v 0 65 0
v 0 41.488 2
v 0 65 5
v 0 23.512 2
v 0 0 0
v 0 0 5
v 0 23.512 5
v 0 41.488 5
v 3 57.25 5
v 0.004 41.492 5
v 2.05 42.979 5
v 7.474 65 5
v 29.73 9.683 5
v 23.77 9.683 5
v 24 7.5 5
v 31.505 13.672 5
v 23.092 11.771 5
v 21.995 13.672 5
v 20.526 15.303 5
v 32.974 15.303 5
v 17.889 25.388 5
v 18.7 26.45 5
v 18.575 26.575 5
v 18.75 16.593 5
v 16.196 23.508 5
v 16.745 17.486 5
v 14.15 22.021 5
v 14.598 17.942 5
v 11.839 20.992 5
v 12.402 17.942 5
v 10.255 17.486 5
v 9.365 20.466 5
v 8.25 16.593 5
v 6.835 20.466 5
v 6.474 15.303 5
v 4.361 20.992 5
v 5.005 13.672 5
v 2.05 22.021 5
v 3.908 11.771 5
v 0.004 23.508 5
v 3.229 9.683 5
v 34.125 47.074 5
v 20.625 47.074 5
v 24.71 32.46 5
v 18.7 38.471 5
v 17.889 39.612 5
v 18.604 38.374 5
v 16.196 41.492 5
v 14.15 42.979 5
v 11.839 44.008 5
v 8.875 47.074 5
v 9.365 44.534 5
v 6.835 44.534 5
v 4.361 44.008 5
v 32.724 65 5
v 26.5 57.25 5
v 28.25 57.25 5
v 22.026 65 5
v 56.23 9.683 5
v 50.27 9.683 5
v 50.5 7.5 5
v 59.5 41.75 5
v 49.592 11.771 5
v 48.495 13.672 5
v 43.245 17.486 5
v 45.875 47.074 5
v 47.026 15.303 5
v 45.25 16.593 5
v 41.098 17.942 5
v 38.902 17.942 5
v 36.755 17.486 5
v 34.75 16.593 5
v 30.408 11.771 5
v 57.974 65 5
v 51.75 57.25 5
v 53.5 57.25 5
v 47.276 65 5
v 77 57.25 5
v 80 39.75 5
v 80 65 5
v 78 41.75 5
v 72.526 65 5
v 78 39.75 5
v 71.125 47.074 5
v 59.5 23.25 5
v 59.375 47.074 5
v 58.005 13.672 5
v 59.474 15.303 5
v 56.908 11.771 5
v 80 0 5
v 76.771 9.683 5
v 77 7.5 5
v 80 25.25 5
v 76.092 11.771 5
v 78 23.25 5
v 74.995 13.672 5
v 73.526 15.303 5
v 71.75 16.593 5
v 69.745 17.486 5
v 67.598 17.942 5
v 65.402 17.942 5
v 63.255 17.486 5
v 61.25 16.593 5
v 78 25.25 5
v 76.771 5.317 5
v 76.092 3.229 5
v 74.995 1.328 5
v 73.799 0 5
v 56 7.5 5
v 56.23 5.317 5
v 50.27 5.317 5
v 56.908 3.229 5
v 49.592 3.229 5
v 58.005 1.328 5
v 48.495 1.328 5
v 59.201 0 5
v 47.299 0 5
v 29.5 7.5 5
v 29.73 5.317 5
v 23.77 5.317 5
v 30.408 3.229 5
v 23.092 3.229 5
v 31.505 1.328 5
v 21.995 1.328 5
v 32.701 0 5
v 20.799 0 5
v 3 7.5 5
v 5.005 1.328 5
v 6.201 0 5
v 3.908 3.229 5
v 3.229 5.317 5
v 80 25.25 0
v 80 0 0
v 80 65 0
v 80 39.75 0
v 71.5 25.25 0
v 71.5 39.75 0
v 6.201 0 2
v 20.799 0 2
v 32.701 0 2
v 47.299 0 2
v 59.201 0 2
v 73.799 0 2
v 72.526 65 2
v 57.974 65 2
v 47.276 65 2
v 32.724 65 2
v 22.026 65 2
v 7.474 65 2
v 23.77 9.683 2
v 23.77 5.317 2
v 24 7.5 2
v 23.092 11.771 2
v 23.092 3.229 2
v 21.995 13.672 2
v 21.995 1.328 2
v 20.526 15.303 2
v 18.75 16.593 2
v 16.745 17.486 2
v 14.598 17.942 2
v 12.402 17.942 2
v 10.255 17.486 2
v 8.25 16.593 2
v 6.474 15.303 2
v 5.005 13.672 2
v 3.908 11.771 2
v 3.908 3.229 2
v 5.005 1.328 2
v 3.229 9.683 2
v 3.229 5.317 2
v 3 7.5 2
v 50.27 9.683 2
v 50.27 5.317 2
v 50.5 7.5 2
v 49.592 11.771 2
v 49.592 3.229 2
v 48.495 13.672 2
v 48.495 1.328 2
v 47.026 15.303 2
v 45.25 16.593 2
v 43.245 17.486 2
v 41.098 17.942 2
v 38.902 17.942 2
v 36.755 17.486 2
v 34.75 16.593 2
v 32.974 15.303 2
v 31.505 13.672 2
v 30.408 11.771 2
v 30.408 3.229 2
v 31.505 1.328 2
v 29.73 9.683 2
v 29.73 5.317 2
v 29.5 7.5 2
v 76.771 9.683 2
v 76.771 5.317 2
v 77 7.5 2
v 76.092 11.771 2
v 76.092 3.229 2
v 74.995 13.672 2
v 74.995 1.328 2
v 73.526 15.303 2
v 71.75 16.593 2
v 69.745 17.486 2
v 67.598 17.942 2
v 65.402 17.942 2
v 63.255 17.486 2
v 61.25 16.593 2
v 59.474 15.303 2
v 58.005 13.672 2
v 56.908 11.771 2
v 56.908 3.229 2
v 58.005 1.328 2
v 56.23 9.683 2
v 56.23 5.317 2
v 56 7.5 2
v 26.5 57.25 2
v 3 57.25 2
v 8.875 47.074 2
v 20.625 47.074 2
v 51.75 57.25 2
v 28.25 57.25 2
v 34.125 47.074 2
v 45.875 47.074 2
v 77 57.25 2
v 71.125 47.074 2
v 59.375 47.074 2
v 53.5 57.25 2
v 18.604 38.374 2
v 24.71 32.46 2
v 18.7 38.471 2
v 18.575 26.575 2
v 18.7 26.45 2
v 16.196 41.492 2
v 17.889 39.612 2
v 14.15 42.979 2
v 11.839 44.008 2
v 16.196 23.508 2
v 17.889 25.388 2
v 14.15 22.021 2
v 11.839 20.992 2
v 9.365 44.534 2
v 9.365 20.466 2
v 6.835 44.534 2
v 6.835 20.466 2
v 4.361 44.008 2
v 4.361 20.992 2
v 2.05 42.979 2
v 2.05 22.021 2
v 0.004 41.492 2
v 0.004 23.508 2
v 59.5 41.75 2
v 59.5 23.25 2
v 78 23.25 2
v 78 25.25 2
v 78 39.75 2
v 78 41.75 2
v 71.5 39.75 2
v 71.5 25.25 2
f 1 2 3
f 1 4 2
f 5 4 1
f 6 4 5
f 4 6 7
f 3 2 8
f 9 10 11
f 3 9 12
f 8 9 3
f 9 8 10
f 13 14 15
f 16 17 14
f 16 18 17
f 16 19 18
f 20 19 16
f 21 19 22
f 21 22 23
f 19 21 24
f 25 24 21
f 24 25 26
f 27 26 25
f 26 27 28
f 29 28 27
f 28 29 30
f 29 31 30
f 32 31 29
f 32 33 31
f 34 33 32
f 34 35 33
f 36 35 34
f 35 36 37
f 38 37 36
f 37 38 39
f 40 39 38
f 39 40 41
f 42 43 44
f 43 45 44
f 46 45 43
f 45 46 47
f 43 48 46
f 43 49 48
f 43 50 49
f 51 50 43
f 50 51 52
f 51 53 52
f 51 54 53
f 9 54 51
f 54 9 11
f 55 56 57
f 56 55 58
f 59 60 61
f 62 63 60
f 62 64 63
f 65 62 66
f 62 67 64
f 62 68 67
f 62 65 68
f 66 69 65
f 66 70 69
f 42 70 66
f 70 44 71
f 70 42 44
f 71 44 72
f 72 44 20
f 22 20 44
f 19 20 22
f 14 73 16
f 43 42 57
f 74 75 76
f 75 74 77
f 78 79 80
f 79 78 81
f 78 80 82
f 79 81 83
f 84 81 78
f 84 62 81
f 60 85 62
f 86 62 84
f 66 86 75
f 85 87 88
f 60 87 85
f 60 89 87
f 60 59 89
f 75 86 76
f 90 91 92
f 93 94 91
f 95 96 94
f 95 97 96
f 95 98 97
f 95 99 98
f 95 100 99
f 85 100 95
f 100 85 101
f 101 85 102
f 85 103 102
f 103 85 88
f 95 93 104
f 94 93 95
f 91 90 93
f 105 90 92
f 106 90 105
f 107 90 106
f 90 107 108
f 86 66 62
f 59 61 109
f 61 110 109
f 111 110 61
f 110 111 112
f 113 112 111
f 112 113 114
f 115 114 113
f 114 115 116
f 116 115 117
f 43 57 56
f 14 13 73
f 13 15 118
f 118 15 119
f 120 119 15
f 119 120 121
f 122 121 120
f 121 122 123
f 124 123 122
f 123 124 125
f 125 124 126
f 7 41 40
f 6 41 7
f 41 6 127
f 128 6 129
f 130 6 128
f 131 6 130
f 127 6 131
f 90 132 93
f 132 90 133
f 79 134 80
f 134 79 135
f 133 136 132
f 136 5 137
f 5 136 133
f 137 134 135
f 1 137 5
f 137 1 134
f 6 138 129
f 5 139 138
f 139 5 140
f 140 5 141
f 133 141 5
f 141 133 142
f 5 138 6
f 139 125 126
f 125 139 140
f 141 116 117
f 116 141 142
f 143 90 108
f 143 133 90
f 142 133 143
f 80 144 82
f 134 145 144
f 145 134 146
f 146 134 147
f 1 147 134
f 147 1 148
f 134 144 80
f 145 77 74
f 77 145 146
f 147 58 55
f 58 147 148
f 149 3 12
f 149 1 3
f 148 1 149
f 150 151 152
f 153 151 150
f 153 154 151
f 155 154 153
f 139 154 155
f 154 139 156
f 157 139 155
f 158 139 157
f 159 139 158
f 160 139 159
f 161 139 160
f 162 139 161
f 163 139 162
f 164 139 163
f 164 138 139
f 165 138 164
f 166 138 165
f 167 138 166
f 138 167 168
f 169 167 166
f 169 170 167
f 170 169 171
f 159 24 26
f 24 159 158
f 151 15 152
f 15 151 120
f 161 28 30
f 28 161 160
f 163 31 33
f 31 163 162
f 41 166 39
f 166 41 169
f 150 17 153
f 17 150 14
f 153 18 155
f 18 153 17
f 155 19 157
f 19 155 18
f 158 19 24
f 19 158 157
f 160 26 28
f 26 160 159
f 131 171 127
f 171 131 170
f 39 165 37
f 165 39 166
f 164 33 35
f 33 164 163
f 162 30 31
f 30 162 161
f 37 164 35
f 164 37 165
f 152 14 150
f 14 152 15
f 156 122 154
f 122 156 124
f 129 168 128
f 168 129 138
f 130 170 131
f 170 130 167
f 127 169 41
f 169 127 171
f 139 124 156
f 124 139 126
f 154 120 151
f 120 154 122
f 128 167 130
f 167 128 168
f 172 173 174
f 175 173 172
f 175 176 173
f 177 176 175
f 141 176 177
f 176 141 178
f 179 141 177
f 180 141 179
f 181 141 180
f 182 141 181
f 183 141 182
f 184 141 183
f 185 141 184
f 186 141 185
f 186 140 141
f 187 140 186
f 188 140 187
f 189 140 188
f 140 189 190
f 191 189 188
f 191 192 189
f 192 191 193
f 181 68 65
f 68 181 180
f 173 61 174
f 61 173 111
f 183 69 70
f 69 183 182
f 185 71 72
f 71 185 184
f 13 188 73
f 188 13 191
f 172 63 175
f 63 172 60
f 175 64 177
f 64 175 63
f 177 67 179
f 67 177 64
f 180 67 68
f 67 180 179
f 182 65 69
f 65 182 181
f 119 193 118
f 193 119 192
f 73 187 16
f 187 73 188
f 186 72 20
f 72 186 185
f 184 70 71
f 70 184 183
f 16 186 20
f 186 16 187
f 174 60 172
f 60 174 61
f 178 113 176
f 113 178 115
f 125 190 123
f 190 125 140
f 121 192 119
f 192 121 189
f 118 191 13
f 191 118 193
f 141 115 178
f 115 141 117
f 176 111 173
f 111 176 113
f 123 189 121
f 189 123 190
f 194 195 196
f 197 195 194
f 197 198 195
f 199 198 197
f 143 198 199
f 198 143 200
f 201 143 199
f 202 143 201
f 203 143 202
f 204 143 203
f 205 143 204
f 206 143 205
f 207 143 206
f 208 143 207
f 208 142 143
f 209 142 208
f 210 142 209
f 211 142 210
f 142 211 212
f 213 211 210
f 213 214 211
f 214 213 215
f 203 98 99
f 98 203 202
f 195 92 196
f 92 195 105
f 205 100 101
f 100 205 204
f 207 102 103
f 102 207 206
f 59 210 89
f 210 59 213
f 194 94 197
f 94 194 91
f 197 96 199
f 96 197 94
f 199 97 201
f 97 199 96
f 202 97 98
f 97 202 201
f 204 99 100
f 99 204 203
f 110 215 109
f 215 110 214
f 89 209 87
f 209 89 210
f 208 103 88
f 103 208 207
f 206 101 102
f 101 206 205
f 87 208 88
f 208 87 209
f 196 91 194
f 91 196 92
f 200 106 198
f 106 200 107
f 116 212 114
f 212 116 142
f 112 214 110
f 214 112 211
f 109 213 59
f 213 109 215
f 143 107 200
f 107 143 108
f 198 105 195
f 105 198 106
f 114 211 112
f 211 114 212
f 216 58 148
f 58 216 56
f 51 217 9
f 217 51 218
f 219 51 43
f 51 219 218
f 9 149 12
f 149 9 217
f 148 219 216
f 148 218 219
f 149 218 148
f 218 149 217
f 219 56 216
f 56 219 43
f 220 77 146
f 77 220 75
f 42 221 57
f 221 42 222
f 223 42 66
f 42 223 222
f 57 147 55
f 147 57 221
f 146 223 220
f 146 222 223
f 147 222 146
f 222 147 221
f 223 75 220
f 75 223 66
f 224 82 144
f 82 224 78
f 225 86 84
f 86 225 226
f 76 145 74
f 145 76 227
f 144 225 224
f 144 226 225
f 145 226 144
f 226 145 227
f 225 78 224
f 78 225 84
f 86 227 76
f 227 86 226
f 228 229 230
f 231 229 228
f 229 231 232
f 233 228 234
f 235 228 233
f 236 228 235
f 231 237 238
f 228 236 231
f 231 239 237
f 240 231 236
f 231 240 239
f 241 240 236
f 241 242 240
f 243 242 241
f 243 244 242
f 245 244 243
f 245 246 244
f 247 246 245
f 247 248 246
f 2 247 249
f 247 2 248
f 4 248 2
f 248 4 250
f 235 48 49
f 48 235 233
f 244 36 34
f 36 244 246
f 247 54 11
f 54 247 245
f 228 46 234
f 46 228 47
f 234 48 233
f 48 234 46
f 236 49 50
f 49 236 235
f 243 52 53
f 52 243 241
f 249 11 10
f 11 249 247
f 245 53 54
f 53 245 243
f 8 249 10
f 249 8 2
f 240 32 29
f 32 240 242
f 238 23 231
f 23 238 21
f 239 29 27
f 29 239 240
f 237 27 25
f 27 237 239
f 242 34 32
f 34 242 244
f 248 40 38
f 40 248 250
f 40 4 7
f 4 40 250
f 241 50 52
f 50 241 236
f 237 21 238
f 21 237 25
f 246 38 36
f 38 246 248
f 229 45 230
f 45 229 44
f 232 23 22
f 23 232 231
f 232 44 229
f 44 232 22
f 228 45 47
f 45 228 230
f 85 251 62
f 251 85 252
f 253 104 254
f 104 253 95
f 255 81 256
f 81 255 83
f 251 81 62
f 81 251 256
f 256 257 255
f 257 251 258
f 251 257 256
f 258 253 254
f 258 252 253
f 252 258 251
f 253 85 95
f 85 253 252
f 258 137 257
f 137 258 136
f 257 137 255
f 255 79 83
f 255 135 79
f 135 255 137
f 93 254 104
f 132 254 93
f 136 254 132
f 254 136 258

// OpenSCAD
length = 80;
width = 65;
height = 5;

floorThickness = 3;

//Based on magnet size:
magnetBaseOuterDiameter = 20;
magnetBaseInnerDiameter = 15.4;
magnetHeight = 4.2;

coinDiameter = 21;
coinOffset = 3;
coinHeight = 3;

conflictTokenDiameter = 23.5;
conflictTokenOffset = 4;
conflictTokenHeight = 3;

reagentTokenDiameter = 24.2;
reagentTokenOffset = 4;
reagentTokenHeight = 3;
reagentTokenTriangleSide = 8.5;
reagentTokenLongSide = 12.1;

alchemicalTokenDiameter = 18.5;
alchemicalTokenOffset = 2;
alchemicalTokenHeight = 3;
squareLipThickness = 2;
squareLipWidthRemainder = 4;
squareLipLengthRemainder = 12;

//triangle 12.3 x 8.5 x 8.5

spaceBetweenCircles = 3;

difference(){
    cube([length, width, height]);

    translate([coinDiameter/2 + spaceBetweenCircles, coinDiameter/2 - coinOffset, height - coinHeight])
        cylinder(coinHeight, d=coinDiameter);

    translate([length /2, coinDiameter/2 - coinOffset, height - coinHeight])
        cylinder(coinHeight, d=coinDiameter);
    
    translate([length - (coinDiameter/2 + spaceBetweenCircles), coinDiameter/2 - coinOffset, height - coinHeight])
        cylinder(coinHeight, d=coinDiameter);
    
    
    
    
    translate([conflictTokenDiameter/2 + spaceBetweenCircles, width - (conflictTokenDiameter/2 - conflictTokenOffset), height - conflictTokenHeight])
        cylinder(conflictTokenHeight, d=conflictTokenDiameter, $fn=6);

    translate([length /2, width - (conflictTokenDiameter/2 - conflictTokenOffset), height - conflictTokenHeight])
        cylinder(conflictTokenHeight, d=conflictTokenDiameter, $fn=6);
    
    translate([length - (conflictTokenDiameter/2 + spaceBetweenCircles), width - (conflictTokenDiameter/2 - conflictTokenOffset), height - conflictTokenHeight])
        cylinder(conflictTokenHeight, d=conflictTokenDiameter, $fn=6);
    
    


    translate([reagentTokenDiameter/2 - reagentTokenOffset, width/2, height - reagentTokenHeight])
        cylinder(reagentTokenHeight, d=reagentTokenDiameter);
    translate([reagentTokenDiameter - 5.5, width/2 - reagentTokenLongSide/2, height - reagentTokenHeight])
        rotate([0,0,45])
            cube([reagentTokenTriangleSide, reagentTokenTriangleSide,reagentTokenHeight]);

    translate([length - (alchemicalTokenDiameter + squareLipThickness), width/2 - alchemicalTokenDiameter/2, height - alchemicalTokenHeight])
        cube([alchemicalTokenDiameter, alchemicalTokenDiameter, alchemicalTokenHeight]);
    translate([length - (alchemicalTokenDiameter + squareLipThickness - squareLipLengthRemainder), width/2 - (alchemicalTokenDiameter - squareLipWidthRemainder)/2, 0])
        cube([
            alchemicalTokenDiameter + squareLipThickness - squareLipLengthRemainder,
            alchemicalTokenDiameter - squareLipWidthRemainder,
            height])
            
    
        
    translate([length/2, width/2, height - magnetHeight])
        cylinder(magnetHeight, d=magnetBaseInnerDiameter);
        

}
